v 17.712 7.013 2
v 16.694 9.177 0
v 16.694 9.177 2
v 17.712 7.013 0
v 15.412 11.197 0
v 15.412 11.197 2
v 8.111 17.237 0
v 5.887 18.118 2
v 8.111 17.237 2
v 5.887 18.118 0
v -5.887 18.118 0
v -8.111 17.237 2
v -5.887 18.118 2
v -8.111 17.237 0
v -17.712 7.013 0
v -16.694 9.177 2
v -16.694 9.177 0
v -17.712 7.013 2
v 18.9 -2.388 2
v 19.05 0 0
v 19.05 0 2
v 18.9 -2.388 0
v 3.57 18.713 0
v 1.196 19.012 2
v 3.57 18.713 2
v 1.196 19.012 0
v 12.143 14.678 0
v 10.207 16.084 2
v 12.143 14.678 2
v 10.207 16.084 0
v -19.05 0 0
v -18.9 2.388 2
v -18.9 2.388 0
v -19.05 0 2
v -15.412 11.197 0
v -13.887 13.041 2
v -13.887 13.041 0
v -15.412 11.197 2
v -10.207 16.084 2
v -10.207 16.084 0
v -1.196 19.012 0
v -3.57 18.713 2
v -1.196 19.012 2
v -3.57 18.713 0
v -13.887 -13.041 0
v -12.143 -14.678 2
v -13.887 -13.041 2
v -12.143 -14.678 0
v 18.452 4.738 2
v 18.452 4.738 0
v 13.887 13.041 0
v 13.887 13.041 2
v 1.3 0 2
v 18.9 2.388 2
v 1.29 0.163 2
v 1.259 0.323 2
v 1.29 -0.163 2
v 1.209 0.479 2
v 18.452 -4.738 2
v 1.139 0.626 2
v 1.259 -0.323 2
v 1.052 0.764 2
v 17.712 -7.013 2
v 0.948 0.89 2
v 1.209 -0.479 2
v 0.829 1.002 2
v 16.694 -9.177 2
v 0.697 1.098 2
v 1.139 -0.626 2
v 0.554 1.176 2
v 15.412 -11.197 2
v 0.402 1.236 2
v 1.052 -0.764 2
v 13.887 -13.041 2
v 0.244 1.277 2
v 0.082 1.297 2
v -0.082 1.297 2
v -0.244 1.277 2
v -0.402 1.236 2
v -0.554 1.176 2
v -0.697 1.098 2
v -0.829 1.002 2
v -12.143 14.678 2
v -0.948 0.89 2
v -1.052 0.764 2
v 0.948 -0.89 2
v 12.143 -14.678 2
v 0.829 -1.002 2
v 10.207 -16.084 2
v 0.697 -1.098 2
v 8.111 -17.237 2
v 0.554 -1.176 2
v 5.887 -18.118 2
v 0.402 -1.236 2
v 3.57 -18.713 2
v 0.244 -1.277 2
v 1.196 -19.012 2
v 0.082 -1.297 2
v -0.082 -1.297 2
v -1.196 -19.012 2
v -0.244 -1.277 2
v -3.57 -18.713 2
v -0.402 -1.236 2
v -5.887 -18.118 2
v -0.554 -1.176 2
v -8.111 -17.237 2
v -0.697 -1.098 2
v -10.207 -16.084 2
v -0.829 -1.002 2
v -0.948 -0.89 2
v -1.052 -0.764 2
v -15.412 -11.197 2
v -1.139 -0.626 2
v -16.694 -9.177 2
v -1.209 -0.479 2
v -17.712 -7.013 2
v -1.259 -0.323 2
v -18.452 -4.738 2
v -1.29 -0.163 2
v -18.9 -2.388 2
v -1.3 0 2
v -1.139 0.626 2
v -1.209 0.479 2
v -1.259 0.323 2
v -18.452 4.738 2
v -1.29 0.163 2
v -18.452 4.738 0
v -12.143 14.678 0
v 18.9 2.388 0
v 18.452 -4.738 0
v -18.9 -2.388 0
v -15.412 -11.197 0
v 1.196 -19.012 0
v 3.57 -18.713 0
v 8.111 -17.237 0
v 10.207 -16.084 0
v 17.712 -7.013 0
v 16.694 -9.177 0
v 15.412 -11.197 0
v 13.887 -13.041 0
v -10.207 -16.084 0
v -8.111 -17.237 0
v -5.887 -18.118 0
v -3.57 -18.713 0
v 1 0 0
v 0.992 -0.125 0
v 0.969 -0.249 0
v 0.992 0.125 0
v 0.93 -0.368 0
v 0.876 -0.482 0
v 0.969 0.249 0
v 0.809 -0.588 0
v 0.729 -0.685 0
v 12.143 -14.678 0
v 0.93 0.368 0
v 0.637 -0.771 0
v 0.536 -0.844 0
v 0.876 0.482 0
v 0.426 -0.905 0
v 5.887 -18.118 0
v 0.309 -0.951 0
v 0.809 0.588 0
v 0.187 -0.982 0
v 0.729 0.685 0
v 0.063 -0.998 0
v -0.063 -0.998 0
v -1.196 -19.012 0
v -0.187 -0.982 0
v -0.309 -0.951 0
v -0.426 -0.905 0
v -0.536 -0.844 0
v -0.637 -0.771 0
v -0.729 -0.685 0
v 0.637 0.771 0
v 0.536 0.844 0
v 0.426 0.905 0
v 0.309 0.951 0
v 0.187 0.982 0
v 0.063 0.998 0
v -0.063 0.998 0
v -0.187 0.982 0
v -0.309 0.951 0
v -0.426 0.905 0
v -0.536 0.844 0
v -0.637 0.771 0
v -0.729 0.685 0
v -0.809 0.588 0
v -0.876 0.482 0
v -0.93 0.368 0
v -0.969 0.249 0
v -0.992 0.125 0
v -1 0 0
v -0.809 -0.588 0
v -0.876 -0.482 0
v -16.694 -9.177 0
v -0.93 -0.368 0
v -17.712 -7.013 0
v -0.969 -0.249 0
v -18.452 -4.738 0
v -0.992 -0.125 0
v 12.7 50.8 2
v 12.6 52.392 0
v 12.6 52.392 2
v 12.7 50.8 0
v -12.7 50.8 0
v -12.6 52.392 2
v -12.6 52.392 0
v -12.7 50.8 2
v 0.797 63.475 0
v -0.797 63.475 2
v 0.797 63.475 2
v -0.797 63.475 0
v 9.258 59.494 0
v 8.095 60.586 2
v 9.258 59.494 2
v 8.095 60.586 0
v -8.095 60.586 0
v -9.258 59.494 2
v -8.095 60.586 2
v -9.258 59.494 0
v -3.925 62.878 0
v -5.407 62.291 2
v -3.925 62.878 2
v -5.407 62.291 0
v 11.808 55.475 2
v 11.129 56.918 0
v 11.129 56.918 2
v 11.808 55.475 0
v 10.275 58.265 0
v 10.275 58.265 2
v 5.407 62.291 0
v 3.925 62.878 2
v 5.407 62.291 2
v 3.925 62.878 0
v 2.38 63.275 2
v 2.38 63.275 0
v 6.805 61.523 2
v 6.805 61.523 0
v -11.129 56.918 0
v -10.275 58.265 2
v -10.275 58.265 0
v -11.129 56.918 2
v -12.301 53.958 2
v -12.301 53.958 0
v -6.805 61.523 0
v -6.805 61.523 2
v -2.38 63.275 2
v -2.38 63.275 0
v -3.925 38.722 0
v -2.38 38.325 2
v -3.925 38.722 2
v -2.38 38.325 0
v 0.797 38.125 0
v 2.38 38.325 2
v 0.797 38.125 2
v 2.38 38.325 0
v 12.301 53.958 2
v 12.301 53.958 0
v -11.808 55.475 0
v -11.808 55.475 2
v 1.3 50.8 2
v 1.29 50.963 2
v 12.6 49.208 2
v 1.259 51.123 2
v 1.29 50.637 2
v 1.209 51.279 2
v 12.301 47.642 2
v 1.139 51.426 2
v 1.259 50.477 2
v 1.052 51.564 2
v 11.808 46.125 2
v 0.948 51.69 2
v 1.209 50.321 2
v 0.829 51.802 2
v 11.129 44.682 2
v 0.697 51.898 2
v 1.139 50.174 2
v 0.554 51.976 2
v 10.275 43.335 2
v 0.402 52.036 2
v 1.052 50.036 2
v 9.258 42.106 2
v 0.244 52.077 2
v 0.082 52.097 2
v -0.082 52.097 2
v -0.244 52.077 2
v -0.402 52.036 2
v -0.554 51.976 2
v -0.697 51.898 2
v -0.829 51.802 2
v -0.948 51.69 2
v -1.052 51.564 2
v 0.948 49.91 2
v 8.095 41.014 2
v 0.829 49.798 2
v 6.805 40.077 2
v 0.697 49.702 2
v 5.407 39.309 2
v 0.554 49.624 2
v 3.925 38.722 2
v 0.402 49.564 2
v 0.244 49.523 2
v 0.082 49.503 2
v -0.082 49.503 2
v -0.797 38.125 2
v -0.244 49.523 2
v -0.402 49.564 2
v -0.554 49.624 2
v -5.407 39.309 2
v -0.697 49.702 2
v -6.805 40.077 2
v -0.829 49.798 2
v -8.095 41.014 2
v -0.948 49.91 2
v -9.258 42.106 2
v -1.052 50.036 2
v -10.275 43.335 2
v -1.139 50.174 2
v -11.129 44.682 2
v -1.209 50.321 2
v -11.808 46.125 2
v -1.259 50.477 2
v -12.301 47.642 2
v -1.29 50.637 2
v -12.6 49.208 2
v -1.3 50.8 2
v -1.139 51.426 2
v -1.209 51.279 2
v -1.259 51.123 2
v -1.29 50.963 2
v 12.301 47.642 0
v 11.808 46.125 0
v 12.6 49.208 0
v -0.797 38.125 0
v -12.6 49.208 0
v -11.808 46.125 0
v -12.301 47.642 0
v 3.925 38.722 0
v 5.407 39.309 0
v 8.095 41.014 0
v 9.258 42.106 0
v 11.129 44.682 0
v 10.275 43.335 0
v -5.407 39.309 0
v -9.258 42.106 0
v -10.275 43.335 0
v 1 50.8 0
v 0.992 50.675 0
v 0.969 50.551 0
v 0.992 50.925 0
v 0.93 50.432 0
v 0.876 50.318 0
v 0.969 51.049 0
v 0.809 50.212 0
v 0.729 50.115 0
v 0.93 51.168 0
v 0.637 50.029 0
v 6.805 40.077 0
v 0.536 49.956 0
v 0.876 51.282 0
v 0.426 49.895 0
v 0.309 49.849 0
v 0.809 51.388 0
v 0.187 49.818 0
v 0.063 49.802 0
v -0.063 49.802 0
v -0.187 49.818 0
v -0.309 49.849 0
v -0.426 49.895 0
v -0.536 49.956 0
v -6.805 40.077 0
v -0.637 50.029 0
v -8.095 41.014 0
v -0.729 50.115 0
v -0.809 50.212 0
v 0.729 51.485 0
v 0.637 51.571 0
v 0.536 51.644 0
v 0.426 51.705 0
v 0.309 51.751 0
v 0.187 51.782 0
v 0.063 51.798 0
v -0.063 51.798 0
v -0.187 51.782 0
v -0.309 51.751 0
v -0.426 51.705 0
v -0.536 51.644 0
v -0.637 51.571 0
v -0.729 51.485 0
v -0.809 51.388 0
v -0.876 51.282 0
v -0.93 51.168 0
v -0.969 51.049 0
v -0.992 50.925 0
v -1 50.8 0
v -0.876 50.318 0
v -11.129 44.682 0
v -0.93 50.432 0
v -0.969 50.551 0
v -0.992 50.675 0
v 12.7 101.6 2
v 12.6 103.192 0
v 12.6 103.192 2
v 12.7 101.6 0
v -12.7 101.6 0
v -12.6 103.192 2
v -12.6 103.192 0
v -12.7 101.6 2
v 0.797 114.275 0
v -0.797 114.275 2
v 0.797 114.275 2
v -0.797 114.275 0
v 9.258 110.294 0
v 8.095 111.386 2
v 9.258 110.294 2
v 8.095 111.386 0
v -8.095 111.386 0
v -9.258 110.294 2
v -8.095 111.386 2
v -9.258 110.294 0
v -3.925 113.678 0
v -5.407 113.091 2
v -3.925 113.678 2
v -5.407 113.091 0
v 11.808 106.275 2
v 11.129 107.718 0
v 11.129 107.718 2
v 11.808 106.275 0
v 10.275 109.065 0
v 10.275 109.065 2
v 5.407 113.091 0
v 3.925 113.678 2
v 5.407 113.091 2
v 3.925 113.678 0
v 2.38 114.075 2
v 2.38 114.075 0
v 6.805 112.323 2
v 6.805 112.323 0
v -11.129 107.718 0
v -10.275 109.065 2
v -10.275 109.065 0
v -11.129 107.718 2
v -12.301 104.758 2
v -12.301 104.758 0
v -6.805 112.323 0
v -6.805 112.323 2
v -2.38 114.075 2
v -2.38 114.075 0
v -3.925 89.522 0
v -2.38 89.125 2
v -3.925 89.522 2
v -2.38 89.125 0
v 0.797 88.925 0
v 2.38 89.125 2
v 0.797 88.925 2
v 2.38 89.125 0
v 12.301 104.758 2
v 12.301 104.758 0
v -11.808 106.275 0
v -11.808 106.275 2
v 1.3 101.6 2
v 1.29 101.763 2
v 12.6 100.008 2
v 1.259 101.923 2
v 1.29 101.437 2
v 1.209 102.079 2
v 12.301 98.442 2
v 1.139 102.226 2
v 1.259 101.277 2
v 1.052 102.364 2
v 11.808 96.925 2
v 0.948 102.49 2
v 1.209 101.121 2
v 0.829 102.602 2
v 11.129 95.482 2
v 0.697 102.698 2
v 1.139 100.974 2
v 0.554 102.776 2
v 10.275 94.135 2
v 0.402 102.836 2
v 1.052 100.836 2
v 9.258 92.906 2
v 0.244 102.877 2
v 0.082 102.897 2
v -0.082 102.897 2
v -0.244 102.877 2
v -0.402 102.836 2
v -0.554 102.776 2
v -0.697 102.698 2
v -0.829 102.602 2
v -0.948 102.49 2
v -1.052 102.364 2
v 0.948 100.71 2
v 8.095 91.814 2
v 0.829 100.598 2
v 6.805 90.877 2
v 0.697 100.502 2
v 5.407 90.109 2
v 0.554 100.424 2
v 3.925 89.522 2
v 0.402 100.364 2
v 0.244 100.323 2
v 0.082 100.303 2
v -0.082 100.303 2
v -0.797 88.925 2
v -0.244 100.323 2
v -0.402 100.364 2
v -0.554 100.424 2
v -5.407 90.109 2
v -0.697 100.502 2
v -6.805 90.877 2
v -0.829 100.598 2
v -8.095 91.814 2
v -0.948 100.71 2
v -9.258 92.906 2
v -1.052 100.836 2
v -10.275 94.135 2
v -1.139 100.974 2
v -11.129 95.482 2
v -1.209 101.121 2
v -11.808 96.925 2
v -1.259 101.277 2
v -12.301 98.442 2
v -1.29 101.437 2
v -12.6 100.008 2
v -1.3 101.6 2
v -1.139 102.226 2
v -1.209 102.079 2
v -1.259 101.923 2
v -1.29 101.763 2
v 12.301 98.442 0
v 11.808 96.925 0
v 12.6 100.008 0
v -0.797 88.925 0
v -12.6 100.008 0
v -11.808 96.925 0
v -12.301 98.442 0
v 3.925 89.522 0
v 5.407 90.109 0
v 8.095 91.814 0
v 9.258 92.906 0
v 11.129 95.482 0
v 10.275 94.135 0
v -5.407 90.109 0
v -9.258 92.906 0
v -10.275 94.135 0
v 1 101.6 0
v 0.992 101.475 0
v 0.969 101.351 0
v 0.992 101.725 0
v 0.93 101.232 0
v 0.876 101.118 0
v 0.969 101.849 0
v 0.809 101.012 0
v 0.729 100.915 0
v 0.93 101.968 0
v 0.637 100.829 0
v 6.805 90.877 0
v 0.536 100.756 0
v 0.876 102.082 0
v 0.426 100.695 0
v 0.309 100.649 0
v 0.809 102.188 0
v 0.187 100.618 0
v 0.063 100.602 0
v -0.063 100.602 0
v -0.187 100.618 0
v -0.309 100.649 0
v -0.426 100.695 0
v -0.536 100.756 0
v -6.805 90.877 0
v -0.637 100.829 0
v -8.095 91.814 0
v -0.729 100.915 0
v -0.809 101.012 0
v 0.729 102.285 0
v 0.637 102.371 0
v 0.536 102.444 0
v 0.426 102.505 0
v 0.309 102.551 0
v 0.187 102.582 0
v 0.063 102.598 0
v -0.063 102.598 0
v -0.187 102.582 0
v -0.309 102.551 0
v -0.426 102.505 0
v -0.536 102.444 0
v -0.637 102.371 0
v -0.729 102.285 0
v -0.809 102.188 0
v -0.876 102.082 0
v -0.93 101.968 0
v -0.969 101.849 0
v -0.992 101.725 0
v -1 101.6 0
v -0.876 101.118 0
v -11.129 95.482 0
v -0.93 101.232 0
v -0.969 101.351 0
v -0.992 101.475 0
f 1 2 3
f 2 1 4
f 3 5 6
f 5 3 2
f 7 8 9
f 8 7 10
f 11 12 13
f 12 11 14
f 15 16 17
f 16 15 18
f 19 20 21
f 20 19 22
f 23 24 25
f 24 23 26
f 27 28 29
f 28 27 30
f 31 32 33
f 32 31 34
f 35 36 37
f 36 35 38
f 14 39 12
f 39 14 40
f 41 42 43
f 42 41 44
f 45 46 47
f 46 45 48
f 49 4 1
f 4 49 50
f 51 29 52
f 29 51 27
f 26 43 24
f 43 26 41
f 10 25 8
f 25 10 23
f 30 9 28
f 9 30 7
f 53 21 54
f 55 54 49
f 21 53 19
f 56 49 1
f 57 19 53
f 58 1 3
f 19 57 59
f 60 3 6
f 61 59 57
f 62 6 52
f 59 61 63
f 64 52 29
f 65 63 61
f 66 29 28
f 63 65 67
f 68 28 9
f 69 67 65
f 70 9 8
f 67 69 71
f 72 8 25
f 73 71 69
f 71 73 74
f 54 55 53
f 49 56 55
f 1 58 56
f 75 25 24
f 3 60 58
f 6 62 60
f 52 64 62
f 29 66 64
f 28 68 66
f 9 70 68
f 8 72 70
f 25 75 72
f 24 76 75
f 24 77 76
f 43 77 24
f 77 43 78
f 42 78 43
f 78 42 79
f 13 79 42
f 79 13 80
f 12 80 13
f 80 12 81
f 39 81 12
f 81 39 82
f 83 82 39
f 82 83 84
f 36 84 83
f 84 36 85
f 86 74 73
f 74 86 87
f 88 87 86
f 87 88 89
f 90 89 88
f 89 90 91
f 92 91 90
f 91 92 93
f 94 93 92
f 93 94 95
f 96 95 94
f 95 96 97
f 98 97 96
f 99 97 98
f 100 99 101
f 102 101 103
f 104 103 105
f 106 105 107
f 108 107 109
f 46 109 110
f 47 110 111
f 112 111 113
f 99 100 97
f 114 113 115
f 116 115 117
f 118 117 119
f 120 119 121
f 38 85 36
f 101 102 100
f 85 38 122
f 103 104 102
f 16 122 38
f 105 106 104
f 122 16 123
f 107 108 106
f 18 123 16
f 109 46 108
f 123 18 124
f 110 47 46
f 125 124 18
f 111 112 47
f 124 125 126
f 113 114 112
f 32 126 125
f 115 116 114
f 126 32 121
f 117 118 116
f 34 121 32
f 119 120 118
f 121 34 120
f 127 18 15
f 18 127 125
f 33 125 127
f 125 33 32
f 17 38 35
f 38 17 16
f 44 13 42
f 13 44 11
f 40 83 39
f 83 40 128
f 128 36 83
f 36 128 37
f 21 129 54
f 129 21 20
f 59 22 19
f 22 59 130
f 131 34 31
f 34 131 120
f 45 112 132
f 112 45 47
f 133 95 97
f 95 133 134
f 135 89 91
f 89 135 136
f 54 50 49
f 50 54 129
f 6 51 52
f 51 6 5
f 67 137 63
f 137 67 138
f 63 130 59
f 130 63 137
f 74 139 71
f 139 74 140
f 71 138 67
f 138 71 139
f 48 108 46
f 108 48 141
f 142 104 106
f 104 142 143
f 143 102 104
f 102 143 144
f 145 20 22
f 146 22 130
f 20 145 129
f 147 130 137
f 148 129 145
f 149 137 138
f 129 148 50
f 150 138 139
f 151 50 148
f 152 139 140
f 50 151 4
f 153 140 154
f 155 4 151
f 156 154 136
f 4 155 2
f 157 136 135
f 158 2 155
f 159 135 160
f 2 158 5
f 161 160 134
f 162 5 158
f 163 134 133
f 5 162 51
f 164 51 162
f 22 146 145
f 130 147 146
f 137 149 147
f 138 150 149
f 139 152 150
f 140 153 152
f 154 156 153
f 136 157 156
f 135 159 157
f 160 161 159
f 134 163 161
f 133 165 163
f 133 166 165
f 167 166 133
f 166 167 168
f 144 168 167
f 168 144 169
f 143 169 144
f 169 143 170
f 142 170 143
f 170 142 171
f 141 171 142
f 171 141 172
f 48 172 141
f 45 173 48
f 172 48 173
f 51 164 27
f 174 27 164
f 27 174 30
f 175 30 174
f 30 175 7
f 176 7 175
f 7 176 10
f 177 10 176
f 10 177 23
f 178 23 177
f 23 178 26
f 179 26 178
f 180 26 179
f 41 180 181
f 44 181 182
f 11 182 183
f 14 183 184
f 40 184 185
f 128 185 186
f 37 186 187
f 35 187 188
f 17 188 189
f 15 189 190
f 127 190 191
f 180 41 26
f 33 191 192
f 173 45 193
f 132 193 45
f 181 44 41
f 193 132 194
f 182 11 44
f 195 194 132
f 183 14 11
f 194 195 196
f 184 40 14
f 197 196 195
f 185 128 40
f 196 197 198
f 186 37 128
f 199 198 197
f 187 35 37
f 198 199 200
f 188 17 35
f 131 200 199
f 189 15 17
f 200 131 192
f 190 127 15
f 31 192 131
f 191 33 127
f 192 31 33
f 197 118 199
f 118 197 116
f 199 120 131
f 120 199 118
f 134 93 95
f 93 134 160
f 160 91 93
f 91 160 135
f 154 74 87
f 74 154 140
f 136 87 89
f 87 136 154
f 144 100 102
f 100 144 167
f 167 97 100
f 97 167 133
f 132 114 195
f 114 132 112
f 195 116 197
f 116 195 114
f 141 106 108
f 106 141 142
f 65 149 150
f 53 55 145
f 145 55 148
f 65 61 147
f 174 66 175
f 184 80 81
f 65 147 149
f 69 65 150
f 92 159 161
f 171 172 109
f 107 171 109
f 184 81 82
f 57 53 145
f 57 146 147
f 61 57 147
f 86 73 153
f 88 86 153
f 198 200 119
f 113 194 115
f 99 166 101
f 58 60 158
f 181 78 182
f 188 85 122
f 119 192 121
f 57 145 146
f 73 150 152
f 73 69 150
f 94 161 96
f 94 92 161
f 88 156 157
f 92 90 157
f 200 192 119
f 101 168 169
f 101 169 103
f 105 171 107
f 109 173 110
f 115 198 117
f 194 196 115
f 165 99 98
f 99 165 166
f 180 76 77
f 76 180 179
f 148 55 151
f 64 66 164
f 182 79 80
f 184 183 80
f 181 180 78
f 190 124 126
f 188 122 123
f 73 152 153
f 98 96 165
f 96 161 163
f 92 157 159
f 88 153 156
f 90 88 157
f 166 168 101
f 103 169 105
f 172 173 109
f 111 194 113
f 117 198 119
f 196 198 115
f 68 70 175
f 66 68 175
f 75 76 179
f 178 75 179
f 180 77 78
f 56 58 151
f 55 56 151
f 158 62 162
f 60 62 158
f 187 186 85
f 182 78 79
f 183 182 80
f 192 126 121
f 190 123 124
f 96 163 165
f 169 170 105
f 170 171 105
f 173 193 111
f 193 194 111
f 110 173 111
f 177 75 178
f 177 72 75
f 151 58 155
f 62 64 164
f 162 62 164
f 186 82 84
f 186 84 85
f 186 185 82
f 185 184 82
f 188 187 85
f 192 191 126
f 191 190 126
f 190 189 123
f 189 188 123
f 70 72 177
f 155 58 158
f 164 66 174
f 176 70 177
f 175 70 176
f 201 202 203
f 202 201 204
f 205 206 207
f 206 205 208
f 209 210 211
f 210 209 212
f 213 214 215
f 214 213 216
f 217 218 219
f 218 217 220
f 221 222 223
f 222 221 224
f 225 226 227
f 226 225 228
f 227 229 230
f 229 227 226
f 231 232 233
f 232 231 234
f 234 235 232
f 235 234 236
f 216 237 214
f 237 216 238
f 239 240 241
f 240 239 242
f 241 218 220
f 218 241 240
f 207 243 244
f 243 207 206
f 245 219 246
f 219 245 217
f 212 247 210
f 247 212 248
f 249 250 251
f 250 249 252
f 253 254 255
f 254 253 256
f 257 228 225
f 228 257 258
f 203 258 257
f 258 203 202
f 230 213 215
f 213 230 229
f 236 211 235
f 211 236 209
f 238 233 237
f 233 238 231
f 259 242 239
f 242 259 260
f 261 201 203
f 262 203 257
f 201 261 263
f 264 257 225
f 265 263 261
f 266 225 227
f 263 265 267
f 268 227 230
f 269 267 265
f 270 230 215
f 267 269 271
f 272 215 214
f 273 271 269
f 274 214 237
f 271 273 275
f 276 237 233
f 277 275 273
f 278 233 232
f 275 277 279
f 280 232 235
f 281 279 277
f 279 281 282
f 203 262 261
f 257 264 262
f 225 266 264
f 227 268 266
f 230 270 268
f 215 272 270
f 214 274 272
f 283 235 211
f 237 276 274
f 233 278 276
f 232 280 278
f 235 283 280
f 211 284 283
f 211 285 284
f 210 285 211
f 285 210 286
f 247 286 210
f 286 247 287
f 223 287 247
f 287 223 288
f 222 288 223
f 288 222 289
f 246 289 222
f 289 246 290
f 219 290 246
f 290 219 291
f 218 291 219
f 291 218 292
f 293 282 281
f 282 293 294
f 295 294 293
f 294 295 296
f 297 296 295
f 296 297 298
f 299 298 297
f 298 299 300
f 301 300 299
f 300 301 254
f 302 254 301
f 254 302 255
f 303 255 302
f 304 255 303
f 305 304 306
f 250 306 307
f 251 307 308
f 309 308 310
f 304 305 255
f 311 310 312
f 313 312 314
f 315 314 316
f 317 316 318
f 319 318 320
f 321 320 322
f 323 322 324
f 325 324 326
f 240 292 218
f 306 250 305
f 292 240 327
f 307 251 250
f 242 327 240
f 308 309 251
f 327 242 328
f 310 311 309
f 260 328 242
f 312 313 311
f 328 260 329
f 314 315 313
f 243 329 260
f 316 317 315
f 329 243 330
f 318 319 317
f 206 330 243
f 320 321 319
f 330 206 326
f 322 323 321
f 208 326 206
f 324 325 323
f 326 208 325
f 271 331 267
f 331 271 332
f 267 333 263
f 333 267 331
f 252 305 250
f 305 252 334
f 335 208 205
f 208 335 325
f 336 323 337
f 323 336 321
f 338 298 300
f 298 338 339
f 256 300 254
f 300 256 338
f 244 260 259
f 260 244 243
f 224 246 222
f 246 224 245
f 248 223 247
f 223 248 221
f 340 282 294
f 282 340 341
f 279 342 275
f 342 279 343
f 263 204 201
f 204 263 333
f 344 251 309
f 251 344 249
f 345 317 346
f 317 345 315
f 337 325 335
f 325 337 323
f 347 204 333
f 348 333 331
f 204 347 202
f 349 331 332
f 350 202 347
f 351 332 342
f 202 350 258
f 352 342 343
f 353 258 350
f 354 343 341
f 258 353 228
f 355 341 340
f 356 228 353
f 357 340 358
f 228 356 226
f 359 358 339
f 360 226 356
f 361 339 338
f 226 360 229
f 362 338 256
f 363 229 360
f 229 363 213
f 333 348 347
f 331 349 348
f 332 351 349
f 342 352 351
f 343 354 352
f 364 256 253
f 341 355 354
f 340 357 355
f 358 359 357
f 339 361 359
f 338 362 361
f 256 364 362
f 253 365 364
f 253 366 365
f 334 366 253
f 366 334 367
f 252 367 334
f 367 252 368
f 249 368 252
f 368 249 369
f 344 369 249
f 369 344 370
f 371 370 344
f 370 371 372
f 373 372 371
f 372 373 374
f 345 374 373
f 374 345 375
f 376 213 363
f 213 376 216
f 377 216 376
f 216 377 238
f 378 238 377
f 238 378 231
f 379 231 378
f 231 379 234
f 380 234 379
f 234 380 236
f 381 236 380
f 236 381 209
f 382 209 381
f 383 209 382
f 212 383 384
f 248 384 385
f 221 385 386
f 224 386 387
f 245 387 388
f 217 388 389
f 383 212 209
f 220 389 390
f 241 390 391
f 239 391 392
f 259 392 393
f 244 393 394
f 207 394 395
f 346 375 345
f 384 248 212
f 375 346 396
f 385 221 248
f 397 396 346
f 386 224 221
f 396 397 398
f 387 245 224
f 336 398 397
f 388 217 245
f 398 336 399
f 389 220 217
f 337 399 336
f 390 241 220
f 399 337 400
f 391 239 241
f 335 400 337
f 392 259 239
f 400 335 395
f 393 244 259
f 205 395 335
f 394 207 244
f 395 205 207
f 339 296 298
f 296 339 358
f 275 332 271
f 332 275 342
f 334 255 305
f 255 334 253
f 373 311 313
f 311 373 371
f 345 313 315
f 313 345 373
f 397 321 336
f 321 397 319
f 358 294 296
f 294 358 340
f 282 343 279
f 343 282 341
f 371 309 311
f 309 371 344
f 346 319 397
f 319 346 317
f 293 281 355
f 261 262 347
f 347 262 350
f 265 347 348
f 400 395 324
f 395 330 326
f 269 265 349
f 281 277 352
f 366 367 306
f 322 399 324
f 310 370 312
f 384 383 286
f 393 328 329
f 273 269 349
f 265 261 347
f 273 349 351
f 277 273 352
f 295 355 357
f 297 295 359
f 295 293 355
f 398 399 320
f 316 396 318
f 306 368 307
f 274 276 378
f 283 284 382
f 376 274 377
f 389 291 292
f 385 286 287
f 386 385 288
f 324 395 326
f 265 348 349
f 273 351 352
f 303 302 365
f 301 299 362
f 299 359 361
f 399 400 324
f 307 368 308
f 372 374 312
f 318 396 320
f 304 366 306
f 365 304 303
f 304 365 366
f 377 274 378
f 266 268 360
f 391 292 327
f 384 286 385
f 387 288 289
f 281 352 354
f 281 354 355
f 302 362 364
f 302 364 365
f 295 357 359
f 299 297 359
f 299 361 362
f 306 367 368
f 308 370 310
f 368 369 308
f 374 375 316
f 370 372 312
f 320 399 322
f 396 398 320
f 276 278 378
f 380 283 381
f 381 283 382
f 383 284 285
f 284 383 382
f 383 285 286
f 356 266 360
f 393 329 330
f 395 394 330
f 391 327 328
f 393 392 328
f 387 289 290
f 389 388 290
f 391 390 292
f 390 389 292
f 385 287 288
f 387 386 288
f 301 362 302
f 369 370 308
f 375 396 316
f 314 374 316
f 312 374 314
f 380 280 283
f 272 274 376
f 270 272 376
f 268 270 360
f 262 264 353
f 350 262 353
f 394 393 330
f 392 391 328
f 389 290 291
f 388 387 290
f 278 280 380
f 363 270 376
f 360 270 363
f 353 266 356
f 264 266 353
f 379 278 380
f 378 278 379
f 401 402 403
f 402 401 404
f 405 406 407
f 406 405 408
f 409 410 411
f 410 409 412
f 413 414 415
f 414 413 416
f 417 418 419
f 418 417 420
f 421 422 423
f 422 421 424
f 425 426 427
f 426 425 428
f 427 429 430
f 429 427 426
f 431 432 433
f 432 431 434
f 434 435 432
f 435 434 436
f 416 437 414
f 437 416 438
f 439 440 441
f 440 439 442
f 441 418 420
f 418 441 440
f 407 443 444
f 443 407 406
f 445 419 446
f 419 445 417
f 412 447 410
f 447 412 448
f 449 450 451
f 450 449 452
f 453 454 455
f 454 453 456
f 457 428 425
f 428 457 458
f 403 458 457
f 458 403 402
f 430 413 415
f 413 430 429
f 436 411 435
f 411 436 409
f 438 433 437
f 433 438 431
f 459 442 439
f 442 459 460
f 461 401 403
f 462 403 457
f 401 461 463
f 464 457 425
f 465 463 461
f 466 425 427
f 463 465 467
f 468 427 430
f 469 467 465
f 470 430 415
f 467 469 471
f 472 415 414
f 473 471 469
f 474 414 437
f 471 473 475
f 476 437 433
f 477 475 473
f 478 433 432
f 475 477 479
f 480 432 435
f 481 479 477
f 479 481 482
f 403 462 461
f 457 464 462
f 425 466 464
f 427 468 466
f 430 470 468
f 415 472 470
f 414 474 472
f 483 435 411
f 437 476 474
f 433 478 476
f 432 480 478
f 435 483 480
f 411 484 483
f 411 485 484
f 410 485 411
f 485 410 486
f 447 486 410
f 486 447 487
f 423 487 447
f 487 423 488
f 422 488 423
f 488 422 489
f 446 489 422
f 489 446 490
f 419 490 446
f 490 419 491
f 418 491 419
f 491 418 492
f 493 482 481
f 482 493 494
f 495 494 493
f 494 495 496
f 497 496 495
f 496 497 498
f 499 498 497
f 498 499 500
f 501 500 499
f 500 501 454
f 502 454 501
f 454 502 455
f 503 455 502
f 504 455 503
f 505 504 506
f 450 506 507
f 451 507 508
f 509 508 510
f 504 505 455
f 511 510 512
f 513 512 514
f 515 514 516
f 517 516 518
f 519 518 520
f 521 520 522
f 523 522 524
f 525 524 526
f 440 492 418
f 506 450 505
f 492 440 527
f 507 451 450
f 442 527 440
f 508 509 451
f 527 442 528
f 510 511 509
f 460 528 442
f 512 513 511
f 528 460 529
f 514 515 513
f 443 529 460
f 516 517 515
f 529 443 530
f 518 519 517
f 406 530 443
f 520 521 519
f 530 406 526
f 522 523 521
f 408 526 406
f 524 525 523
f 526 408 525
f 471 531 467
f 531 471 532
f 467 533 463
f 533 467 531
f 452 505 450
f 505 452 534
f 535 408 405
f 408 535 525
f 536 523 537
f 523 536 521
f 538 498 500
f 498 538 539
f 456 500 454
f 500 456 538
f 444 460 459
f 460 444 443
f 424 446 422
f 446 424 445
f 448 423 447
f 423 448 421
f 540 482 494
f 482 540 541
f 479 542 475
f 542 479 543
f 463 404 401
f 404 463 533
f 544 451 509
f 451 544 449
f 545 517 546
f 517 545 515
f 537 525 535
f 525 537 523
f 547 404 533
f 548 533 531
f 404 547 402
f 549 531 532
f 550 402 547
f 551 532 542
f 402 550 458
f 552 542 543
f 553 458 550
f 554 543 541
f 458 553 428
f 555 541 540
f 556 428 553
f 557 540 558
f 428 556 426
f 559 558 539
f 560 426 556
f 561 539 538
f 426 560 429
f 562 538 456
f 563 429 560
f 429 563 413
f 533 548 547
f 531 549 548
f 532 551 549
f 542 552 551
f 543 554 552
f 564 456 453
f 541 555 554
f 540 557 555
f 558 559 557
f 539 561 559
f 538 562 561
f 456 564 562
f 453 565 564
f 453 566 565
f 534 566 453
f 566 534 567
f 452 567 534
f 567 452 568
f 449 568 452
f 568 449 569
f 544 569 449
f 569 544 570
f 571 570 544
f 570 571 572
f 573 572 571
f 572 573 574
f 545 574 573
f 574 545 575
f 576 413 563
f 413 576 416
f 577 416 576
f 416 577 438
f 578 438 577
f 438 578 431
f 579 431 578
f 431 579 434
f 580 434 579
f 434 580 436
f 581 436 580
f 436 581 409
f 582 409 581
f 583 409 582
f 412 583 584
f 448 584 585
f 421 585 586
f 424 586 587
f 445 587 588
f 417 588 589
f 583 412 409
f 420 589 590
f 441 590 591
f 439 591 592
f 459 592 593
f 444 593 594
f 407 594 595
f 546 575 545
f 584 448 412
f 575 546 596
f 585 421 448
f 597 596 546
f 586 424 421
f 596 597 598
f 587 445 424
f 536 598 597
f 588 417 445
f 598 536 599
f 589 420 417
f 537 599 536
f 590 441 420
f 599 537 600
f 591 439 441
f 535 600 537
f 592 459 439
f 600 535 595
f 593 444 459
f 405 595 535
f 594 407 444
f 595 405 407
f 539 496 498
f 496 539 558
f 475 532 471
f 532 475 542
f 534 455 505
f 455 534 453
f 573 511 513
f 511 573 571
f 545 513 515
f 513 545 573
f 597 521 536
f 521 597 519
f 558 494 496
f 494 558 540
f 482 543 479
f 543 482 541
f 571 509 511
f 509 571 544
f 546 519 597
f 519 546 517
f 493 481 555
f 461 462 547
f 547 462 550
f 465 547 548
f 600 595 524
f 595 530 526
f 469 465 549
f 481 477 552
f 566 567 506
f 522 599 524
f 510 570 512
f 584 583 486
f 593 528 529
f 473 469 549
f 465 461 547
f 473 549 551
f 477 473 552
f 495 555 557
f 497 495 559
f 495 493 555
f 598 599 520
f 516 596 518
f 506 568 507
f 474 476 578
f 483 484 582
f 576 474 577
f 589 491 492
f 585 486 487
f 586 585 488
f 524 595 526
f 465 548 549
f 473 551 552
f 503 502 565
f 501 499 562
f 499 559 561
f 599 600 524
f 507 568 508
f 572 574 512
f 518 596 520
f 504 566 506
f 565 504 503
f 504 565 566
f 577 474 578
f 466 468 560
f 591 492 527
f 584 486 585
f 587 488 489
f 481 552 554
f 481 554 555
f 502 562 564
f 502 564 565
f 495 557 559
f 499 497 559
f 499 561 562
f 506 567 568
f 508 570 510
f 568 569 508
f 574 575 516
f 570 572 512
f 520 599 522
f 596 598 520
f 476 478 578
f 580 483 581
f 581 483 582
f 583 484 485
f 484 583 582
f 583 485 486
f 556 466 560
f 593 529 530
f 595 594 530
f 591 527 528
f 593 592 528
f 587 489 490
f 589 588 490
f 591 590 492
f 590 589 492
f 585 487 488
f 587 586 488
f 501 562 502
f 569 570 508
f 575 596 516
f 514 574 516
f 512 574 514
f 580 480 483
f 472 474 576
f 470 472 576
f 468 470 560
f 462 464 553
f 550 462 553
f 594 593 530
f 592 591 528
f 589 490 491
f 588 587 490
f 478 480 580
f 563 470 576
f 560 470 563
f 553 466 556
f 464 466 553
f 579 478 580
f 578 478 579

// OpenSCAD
// This is for drawing a fixed distance around
// a shape (like a climbing hold).
// {r} is the radius.

$fn = 50;
I2MM = 25.4;

module spacer_disk_template(r) {
    difference() {
        cylinder(h=2, r1=r, r2=r);
        cylinder(h=2, r1=1, r2=1.3);
    }
}

translate([0, 0, 0]) spacer_disk_template(0.75*I2MM);
translate([0, 2*I2MM, 0]) spacer_disk_template(0.5*I2MM);
translate([0, 4*I2MM, 0]) spacer_disk_template(0.5*I2MM);
